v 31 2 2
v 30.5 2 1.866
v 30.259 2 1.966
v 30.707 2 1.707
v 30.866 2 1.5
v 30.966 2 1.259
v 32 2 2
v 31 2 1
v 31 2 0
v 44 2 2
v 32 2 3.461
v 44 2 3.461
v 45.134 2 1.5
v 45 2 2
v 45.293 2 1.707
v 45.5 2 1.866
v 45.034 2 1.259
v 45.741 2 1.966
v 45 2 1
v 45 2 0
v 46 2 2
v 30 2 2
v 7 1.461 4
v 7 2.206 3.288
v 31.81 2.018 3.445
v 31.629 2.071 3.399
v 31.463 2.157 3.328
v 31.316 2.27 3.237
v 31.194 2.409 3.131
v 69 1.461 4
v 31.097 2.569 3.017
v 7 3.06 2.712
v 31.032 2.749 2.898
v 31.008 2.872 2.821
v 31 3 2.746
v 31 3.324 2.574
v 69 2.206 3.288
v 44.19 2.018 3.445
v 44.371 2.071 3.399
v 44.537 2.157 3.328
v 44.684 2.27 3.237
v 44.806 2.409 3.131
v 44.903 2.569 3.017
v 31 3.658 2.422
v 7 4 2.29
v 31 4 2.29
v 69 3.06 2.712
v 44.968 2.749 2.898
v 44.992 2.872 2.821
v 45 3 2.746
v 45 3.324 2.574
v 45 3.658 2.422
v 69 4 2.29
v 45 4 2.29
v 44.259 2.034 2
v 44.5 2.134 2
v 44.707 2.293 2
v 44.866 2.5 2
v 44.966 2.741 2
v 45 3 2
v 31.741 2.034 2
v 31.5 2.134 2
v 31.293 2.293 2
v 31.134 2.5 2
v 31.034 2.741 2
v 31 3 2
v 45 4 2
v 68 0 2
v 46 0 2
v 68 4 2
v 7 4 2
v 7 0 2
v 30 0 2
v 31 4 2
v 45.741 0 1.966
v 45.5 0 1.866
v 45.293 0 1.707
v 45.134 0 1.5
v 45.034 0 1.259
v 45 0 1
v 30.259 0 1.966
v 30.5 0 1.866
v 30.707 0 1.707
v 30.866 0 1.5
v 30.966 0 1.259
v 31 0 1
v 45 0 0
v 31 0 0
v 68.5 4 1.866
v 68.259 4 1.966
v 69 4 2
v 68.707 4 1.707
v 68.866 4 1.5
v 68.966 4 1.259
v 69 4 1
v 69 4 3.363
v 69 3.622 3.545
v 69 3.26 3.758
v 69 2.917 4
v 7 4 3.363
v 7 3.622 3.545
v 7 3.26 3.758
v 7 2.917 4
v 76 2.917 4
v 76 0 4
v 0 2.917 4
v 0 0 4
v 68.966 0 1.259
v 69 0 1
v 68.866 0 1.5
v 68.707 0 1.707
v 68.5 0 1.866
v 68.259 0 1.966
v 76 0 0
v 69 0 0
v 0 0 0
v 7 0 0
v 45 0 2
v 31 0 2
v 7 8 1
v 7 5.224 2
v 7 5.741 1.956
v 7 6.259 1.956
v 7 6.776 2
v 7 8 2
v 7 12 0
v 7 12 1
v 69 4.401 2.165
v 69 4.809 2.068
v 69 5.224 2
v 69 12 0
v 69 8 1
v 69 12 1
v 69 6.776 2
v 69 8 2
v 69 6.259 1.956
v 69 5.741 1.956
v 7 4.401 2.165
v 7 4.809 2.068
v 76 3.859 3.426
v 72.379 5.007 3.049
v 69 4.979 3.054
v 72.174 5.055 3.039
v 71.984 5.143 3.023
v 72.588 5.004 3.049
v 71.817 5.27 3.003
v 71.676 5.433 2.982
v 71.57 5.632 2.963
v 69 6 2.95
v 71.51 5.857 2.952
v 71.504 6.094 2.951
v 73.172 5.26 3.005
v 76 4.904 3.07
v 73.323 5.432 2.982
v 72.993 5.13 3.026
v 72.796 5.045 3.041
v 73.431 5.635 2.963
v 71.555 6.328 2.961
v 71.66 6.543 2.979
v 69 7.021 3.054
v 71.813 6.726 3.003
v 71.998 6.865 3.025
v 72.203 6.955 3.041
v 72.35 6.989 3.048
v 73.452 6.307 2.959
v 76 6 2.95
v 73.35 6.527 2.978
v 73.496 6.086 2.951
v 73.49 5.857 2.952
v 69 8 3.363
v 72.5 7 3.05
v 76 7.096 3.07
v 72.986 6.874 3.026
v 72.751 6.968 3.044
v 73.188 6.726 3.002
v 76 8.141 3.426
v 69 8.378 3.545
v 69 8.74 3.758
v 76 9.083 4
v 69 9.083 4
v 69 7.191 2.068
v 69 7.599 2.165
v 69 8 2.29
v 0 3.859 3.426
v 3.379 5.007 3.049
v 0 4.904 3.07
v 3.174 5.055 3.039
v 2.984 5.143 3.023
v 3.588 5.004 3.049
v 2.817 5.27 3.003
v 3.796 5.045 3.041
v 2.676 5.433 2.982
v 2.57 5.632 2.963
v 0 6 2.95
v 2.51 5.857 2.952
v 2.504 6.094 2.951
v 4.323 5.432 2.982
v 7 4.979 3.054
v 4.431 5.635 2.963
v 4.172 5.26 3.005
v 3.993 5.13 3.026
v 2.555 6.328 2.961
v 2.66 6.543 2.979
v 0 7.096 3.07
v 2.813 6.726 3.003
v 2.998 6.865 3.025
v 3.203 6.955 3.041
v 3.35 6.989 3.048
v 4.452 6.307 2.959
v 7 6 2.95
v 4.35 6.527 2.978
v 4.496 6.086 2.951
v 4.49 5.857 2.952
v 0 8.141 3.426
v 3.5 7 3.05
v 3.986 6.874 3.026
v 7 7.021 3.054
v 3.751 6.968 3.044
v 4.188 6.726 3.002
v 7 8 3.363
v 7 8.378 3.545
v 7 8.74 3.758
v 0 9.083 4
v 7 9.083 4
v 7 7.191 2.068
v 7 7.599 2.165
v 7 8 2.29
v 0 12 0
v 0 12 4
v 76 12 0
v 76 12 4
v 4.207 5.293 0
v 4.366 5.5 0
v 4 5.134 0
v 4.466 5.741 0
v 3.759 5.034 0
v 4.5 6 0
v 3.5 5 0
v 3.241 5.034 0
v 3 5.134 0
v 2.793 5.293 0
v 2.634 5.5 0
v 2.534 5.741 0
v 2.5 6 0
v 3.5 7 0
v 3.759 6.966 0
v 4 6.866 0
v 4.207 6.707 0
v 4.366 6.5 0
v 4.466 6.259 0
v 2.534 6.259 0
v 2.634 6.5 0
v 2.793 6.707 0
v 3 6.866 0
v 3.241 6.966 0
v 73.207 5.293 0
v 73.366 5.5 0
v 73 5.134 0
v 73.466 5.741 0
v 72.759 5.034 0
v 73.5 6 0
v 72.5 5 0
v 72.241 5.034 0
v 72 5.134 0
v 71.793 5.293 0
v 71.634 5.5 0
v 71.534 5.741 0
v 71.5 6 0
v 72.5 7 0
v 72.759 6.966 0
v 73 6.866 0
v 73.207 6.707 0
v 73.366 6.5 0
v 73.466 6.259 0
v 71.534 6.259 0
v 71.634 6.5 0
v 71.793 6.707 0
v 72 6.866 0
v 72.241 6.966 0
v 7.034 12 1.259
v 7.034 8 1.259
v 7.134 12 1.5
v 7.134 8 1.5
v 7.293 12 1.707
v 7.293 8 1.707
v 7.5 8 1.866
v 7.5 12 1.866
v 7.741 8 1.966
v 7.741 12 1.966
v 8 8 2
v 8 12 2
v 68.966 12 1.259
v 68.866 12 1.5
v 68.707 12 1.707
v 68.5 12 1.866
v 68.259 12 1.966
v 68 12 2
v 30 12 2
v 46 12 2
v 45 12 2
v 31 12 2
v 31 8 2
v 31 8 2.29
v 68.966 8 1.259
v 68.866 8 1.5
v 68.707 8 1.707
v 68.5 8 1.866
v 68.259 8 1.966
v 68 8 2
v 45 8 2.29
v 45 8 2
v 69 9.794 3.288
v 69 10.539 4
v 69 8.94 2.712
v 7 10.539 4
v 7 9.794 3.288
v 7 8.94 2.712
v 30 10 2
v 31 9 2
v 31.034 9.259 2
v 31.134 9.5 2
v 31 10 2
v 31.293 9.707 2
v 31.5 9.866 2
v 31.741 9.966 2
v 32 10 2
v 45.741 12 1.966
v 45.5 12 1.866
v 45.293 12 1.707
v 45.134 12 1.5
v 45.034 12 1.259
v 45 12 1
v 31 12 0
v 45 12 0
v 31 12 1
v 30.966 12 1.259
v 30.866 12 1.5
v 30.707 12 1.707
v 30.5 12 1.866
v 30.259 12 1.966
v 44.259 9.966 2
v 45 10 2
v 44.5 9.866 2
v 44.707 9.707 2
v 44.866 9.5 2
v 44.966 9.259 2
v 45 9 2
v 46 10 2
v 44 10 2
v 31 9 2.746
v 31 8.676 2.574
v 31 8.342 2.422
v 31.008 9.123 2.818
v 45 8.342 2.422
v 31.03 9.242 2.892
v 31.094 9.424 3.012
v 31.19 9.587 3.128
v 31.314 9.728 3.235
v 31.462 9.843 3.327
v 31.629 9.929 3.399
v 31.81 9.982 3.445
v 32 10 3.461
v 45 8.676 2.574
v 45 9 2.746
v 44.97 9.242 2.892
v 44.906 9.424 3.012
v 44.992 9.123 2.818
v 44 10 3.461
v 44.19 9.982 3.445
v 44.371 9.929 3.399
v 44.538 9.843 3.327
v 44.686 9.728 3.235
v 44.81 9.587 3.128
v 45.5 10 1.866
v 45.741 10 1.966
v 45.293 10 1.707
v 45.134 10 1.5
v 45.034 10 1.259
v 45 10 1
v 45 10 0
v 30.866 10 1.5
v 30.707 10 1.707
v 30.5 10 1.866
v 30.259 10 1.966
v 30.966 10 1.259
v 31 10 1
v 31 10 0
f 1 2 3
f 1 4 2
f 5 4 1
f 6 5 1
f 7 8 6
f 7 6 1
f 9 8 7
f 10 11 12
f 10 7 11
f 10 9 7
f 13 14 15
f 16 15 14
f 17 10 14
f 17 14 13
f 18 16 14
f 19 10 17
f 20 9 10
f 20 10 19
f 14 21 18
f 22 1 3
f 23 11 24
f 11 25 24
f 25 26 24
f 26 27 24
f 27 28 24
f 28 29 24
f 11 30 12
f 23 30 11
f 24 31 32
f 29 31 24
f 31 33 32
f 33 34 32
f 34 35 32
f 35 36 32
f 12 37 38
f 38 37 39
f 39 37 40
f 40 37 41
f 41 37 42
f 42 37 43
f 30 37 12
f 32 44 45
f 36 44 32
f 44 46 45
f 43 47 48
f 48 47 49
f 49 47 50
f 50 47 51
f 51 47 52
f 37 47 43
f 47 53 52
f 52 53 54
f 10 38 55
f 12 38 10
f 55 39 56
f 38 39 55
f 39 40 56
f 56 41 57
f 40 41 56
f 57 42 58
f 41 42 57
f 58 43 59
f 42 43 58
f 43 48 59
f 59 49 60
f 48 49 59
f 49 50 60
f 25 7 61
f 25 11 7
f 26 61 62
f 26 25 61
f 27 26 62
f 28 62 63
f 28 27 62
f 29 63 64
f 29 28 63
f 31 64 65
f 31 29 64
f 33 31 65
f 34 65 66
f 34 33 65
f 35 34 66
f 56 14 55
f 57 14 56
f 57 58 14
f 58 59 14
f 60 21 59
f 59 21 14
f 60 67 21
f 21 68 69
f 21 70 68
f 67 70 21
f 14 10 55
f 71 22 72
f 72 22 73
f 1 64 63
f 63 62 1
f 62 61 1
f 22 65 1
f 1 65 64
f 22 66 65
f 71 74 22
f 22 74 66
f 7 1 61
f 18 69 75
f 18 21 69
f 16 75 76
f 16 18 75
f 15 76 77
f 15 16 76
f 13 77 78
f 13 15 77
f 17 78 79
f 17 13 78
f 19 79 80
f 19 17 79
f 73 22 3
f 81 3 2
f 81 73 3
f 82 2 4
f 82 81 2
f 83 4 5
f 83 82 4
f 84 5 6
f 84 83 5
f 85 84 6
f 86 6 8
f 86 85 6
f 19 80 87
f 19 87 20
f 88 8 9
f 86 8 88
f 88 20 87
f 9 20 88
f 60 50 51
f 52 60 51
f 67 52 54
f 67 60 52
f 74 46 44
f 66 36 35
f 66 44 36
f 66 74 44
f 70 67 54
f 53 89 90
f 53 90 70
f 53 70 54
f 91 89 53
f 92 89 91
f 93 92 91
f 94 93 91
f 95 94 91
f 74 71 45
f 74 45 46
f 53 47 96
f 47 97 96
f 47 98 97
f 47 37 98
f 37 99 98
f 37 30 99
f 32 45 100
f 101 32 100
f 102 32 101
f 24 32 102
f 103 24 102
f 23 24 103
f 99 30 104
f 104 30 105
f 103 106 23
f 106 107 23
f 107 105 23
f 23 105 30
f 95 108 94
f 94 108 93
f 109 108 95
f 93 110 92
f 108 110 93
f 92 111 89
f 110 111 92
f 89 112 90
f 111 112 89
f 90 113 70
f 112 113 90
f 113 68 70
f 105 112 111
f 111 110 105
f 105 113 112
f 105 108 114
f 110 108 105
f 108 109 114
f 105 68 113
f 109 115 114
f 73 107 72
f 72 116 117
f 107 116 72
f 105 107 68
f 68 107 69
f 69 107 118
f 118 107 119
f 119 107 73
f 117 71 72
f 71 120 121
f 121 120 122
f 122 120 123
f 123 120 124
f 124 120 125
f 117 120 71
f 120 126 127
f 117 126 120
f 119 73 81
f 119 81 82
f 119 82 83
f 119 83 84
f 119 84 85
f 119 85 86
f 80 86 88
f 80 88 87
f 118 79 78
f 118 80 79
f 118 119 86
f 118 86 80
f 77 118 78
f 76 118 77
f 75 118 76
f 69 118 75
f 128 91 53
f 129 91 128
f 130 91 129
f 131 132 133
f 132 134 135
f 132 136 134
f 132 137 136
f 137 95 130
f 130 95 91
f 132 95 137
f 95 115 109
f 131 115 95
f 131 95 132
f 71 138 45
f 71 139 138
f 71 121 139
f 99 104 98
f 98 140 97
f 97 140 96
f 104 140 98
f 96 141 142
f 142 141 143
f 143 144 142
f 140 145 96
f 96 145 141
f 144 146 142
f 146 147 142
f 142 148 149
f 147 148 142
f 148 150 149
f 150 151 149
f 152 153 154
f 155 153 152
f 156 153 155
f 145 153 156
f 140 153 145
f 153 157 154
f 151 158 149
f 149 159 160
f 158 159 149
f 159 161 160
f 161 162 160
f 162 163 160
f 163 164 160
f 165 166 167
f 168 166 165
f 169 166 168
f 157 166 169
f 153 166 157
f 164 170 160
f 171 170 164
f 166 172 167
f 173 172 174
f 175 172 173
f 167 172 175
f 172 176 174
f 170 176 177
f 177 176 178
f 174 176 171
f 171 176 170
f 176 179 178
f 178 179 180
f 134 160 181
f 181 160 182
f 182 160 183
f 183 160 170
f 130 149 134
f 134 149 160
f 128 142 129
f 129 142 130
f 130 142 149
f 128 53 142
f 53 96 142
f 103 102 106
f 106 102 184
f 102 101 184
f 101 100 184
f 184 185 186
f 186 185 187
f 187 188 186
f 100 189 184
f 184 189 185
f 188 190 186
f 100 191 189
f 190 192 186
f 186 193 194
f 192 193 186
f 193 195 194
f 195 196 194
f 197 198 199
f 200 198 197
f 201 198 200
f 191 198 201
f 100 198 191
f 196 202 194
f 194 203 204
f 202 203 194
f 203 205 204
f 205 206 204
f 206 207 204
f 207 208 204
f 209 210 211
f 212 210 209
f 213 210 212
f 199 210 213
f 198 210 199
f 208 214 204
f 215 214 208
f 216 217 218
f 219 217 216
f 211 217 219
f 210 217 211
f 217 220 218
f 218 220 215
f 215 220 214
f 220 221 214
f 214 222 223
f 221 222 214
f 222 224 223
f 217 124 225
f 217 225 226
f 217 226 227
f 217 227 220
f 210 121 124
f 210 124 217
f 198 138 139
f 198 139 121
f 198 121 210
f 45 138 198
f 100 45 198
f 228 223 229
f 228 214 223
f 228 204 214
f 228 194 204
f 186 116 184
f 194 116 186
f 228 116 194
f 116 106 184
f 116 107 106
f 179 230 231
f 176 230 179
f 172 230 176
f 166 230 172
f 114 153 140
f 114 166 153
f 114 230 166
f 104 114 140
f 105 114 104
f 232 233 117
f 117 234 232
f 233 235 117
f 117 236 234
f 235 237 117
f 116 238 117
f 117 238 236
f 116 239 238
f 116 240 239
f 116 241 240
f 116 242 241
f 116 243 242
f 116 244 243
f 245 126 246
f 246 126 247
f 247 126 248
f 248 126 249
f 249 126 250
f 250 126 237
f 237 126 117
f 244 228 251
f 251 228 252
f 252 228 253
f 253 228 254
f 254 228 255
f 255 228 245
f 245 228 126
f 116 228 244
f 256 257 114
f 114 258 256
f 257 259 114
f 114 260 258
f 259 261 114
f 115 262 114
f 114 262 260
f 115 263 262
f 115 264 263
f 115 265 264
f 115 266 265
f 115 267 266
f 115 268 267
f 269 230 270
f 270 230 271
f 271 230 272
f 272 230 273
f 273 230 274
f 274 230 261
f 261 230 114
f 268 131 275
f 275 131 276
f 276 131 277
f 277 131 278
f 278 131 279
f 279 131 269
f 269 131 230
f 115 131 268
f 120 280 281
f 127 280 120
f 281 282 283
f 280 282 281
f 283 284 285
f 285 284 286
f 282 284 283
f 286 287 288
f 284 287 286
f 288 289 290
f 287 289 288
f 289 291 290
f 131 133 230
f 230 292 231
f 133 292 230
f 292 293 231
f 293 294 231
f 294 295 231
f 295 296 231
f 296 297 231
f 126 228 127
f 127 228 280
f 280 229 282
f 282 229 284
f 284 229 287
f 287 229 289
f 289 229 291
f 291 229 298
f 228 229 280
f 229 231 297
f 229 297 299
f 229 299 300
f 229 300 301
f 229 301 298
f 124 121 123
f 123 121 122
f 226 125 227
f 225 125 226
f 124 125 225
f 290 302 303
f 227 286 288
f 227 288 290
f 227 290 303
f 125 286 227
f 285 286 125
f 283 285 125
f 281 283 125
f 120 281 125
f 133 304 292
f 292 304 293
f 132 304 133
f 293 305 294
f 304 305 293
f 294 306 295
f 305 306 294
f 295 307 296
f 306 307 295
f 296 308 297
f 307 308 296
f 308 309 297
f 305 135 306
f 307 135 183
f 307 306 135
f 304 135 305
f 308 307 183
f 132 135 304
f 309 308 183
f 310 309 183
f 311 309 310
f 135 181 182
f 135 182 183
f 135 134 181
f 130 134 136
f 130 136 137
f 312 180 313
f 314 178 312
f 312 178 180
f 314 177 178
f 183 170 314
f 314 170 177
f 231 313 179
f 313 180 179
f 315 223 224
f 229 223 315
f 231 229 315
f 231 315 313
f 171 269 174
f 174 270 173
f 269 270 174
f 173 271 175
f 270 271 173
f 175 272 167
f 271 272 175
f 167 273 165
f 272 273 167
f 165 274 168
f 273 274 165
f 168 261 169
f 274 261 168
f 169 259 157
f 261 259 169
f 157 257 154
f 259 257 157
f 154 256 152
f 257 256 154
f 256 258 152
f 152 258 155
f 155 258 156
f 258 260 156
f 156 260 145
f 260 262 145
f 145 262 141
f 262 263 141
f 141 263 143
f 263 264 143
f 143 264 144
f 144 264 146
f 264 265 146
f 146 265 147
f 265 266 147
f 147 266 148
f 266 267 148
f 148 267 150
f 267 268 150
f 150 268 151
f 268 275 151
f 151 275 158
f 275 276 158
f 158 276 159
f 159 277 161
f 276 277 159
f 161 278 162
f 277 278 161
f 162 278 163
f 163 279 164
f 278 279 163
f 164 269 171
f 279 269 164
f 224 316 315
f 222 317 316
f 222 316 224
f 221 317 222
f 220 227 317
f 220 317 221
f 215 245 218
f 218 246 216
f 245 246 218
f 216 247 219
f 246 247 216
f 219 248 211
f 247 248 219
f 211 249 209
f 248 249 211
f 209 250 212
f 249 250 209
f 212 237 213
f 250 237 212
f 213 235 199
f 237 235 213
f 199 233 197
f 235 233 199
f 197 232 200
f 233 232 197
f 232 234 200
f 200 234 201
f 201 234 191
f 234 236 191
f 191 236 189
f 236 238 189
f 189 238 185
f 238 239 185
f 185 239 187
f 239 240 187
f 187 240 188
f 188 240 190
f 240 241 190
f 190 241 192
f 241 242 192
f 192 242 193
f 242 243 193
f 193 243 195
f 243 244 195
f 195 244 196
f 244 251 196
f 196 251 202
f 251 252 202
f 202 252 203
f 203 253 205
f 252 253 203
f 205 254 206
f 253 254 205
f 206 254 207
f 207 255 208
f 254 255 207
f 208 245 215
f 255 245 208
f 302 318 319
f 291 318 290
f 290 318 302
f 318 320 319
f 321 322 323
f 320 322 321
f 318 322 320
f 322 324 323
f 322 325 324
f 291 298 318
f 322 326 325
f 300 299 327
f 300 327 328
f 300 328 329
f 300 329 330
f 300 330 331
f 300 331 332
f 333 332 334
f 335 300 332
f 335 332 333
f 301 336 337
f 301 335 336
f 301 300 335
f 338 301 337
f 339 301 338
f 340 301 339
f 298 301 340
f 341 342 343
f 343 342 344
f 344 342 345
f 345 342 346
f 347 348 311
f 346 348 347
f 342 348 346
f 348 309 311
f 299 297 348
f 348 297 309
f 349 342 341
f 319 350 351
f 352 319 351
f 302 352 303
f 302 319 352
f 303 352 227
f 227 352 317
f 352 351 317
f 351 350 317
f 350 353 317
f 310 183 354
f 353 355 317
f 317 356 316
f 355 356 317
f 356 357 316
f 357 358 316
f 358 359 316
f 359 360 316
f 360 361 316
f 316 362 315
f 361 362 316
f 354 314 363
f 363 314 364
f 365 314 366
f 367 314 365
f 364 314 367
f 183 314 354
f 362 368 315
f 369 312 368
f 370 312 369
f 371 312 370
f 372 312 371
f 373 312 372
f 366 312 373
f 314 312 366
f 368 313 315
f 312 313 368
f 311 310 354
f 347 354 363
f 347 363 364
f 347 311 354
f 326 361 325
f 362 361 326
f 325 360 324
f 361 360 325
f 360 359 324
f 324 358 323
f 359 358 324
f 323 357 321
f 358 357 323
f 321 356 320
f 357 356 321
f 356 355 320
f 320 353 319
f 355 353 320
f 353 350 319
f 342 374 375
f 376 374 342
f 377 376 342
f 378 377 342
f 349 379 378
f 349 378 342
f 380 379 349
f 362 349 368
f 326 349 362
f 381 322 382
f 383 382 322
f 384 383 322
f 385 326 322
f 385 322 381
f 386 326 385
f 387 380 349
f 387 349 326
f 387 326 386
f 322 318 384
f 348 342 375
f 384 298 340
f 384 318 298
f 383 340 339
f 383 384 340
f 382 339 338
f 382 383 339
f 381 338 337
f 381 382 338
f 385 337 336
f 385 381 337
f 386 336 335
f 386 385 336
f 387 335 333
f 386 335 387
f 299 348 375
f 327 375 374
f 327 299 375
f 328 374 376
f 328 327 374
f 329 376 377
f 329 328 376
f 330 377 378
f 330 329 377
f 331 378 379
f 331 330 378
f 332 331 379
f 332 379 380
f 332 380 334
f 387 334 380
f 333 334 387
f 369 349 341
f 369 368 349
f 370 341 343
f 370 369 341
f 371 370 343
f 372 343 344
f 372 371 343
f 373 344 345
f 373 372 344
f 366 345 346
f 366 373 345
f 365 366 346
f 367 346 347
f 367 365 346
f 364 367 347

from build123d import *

# Parameters (mm, degrees)
SKETCH_W        = 12
SKETCH_H        = 4
PAD_DEPTH       = 76
POCKET_START    = -7
SKETCH001_R     = 6.05
POCKET_DEPTH    = 62
SKETCH002_R     = 5.05
POCKET001_DEPTH = 76.001
SKETCH003_W     = 12
SKETCH003_H     = 62
POCKET002_DEPTH = 2
SKETCH004_W     = 4
SKETCH004_H     = 62
POCKET003_DEPTH = 2.001
SKETCH005_W     = 12
SKETCH005_H     = 14
PAD001_DEPTH    = 2
SKETCH006_W     = 8
SKETCH006_H     = 14
POCKET004_DEPTH = 5
SKETCH007_R     = 1
POCKET005_DEPTH = 4.001
FILLET_R        = 1
FILLET001_R     = 1
FILLET002_R     = 1
FILLET003_R     = 1
FILLET004_R     = 1
FILLET005_R     = 1
FILLET006_R     = 1
FILLET007_R     = 1
FILLET008_R     = 1
FILLET009_R     = 1
FILLET010_R     = 1


with BuildPart() as part:
    # Sketch → Pad (new body)
    with BuildSketch(Plane.YZ):
        with Locations((6, 2)):
            Rectangle(SKETCH_W, SKETCH_H)
    extrude(amount=PAD_DEPTH)

    # Sketch001 (on Face6 of Pad) → Pocket (cut)
    with BuildSketch(Plane.YZ.offset(76).offset(POCKET_START)):
        with Locations((6, 8)):
            Circle(SKETCH001_R)
    extrude(amount=-POCKET_DEPTH, mode=Mode.SUBTRACT)

    # Sketch002 (on Face5 of Pocket) → Pocket001 (cut, through all)
    with BuildSketch(Plane.YZ.offset(76)):
        with Locations((6, 8)):
            Circle(SKETCH002_R)
    extrude(amount=-POCKET001_DEPTH, mode=Mode.SUBTRACT)

    # Sketch003 (on Face1 of Pocket001) → Pocket002 (cut)
    with BuildSketch(Plane.YX):
        with Locations((6, 38)):
            Rectangle(SKETCH003_W, SKETCH003_H)
    extrude(amount=-POCKET002_DEPTH, mode=Mode.SUBTRACT)

    # Sketch004 (on Face12 of Pocket002) → Pocket003 (cut, through all)
    with BuildSketch(Plane.YX.offset(-2)):
        with Locations((6, 38)):
            Rectangle(SKETCH004_W, SKETCH004_H)
    extrude(amount=-POCKET003_DEPTH, mode=Mode.SUBTRACT)

    # Sketch005 (on Face12 of Pocket003) → Pad001 (join)
    with BuildSketch(Plane.YX.offset(-2)):
        with Locations((6, 38)):
            Rectangle(SKETCH005_W, SKETCH005_H)
    extrude(amount=PAD001_DEPTH)

    # Sketch006 (on Face35 of Pad001) → Pocket004 (cut)
    with BuildSketch(Plane.YX):
        with Locations((6, 38)):
            Rectangle(SKETCH006_W, SKETCH006_H)
    extrude(amount=-POCKET004_DEPTH, mode=Mode.SUBTRACT)

    # Sketch007 (on Face10 of Pocket004) → Pocket005 (cut, through all)
    with BuildSketch(Plane.YX):
        with Locations((6, 3.5)):
            Circle(SKETCH007_R)
        with Locations((6, 72.5)):
            Circle(SKETCH007_R)
    extrude(amount=-POCKET005_DEPTH, mode=Mode.SUBTRACT)

    # Fillet
    fillet_edges = [part.edges().sort_by_distance(p)[0] for p in [
        (45, 11, 2),
    ]]
    fillet(fillet_edges, radius=FILLET_R)

    # Fillet001
    fillet001_edges = [part.edges().sort_by_distance(p)[0] for p in [
        (31, 11, 2),
    ]]
    fillet(fillet001_edges, radius=FILLET001_R)

    # Fillet002
    fillet002_edges = [part.edges().sort_by_distance(p)[0] for p in [
        (31, 1, 2),
    ]]
    fillet(fillet002_edges, radius=FILLET002_R)

    # Fillet003
    fillet003_edges = [part.edges().sort_by_distance(p)[0] for p in [
        (45, 1, 2),
    ]]
    fillet(fillet003_edges, radius=FILLET003_R)

    # Fillet004
    fillet004_edges = [part.edges().sort_by_distance(p)[0] for p in [
        (69, 10, 2),
    ]]
    fillet(fillet004_edges, radius=FILLET004_R)

    # Fillet005
    fillet005_edges = [part.edges().sort_by_distance(p)[0] for p in [
        (69, 2, 2),
    ]]
    fillet(fillet005_edges, radius=FILLET005_R)

    # Fillet006
    fillet006_edges = [part.edges().sort_by_distance(p)[0] for p in [
        (7, 10, 2),
    ]]
    fillet(fillet006_edges, radius=FILLET006_R)

    # Fillet007
    fillet007_edges = [part.edges().sort_by_distance(p)[0] for p in [
        (31, 10, 2.730501),
    ]]
    fillet(fillet007_edges, radius=FILLET007_R)

    # Fillet008
    fillet008_edges = [part.edges().sort_by_distance(p)[0] for p in [
        (45, 10, 2.730501),
    ]]
    fillet(fillet008_edges, radius=FILLET008_R)

    # Fillet009
    fillet009_edges = [part.edges().sort_by_distance(p)[0] for p in [
        (31, 2, 2.730501),
    ]]
    fillet(fillet009_edges, radius=FILLET009_R)

    # Fillet010
    fillet010_edges = [part.edges().sort_by_distance(p)[0] for p in [
        (45, 2, 2.730501),
    ]]
    fillet(fillet010_edges, radius=FILLET010_R)


solid = part.part
